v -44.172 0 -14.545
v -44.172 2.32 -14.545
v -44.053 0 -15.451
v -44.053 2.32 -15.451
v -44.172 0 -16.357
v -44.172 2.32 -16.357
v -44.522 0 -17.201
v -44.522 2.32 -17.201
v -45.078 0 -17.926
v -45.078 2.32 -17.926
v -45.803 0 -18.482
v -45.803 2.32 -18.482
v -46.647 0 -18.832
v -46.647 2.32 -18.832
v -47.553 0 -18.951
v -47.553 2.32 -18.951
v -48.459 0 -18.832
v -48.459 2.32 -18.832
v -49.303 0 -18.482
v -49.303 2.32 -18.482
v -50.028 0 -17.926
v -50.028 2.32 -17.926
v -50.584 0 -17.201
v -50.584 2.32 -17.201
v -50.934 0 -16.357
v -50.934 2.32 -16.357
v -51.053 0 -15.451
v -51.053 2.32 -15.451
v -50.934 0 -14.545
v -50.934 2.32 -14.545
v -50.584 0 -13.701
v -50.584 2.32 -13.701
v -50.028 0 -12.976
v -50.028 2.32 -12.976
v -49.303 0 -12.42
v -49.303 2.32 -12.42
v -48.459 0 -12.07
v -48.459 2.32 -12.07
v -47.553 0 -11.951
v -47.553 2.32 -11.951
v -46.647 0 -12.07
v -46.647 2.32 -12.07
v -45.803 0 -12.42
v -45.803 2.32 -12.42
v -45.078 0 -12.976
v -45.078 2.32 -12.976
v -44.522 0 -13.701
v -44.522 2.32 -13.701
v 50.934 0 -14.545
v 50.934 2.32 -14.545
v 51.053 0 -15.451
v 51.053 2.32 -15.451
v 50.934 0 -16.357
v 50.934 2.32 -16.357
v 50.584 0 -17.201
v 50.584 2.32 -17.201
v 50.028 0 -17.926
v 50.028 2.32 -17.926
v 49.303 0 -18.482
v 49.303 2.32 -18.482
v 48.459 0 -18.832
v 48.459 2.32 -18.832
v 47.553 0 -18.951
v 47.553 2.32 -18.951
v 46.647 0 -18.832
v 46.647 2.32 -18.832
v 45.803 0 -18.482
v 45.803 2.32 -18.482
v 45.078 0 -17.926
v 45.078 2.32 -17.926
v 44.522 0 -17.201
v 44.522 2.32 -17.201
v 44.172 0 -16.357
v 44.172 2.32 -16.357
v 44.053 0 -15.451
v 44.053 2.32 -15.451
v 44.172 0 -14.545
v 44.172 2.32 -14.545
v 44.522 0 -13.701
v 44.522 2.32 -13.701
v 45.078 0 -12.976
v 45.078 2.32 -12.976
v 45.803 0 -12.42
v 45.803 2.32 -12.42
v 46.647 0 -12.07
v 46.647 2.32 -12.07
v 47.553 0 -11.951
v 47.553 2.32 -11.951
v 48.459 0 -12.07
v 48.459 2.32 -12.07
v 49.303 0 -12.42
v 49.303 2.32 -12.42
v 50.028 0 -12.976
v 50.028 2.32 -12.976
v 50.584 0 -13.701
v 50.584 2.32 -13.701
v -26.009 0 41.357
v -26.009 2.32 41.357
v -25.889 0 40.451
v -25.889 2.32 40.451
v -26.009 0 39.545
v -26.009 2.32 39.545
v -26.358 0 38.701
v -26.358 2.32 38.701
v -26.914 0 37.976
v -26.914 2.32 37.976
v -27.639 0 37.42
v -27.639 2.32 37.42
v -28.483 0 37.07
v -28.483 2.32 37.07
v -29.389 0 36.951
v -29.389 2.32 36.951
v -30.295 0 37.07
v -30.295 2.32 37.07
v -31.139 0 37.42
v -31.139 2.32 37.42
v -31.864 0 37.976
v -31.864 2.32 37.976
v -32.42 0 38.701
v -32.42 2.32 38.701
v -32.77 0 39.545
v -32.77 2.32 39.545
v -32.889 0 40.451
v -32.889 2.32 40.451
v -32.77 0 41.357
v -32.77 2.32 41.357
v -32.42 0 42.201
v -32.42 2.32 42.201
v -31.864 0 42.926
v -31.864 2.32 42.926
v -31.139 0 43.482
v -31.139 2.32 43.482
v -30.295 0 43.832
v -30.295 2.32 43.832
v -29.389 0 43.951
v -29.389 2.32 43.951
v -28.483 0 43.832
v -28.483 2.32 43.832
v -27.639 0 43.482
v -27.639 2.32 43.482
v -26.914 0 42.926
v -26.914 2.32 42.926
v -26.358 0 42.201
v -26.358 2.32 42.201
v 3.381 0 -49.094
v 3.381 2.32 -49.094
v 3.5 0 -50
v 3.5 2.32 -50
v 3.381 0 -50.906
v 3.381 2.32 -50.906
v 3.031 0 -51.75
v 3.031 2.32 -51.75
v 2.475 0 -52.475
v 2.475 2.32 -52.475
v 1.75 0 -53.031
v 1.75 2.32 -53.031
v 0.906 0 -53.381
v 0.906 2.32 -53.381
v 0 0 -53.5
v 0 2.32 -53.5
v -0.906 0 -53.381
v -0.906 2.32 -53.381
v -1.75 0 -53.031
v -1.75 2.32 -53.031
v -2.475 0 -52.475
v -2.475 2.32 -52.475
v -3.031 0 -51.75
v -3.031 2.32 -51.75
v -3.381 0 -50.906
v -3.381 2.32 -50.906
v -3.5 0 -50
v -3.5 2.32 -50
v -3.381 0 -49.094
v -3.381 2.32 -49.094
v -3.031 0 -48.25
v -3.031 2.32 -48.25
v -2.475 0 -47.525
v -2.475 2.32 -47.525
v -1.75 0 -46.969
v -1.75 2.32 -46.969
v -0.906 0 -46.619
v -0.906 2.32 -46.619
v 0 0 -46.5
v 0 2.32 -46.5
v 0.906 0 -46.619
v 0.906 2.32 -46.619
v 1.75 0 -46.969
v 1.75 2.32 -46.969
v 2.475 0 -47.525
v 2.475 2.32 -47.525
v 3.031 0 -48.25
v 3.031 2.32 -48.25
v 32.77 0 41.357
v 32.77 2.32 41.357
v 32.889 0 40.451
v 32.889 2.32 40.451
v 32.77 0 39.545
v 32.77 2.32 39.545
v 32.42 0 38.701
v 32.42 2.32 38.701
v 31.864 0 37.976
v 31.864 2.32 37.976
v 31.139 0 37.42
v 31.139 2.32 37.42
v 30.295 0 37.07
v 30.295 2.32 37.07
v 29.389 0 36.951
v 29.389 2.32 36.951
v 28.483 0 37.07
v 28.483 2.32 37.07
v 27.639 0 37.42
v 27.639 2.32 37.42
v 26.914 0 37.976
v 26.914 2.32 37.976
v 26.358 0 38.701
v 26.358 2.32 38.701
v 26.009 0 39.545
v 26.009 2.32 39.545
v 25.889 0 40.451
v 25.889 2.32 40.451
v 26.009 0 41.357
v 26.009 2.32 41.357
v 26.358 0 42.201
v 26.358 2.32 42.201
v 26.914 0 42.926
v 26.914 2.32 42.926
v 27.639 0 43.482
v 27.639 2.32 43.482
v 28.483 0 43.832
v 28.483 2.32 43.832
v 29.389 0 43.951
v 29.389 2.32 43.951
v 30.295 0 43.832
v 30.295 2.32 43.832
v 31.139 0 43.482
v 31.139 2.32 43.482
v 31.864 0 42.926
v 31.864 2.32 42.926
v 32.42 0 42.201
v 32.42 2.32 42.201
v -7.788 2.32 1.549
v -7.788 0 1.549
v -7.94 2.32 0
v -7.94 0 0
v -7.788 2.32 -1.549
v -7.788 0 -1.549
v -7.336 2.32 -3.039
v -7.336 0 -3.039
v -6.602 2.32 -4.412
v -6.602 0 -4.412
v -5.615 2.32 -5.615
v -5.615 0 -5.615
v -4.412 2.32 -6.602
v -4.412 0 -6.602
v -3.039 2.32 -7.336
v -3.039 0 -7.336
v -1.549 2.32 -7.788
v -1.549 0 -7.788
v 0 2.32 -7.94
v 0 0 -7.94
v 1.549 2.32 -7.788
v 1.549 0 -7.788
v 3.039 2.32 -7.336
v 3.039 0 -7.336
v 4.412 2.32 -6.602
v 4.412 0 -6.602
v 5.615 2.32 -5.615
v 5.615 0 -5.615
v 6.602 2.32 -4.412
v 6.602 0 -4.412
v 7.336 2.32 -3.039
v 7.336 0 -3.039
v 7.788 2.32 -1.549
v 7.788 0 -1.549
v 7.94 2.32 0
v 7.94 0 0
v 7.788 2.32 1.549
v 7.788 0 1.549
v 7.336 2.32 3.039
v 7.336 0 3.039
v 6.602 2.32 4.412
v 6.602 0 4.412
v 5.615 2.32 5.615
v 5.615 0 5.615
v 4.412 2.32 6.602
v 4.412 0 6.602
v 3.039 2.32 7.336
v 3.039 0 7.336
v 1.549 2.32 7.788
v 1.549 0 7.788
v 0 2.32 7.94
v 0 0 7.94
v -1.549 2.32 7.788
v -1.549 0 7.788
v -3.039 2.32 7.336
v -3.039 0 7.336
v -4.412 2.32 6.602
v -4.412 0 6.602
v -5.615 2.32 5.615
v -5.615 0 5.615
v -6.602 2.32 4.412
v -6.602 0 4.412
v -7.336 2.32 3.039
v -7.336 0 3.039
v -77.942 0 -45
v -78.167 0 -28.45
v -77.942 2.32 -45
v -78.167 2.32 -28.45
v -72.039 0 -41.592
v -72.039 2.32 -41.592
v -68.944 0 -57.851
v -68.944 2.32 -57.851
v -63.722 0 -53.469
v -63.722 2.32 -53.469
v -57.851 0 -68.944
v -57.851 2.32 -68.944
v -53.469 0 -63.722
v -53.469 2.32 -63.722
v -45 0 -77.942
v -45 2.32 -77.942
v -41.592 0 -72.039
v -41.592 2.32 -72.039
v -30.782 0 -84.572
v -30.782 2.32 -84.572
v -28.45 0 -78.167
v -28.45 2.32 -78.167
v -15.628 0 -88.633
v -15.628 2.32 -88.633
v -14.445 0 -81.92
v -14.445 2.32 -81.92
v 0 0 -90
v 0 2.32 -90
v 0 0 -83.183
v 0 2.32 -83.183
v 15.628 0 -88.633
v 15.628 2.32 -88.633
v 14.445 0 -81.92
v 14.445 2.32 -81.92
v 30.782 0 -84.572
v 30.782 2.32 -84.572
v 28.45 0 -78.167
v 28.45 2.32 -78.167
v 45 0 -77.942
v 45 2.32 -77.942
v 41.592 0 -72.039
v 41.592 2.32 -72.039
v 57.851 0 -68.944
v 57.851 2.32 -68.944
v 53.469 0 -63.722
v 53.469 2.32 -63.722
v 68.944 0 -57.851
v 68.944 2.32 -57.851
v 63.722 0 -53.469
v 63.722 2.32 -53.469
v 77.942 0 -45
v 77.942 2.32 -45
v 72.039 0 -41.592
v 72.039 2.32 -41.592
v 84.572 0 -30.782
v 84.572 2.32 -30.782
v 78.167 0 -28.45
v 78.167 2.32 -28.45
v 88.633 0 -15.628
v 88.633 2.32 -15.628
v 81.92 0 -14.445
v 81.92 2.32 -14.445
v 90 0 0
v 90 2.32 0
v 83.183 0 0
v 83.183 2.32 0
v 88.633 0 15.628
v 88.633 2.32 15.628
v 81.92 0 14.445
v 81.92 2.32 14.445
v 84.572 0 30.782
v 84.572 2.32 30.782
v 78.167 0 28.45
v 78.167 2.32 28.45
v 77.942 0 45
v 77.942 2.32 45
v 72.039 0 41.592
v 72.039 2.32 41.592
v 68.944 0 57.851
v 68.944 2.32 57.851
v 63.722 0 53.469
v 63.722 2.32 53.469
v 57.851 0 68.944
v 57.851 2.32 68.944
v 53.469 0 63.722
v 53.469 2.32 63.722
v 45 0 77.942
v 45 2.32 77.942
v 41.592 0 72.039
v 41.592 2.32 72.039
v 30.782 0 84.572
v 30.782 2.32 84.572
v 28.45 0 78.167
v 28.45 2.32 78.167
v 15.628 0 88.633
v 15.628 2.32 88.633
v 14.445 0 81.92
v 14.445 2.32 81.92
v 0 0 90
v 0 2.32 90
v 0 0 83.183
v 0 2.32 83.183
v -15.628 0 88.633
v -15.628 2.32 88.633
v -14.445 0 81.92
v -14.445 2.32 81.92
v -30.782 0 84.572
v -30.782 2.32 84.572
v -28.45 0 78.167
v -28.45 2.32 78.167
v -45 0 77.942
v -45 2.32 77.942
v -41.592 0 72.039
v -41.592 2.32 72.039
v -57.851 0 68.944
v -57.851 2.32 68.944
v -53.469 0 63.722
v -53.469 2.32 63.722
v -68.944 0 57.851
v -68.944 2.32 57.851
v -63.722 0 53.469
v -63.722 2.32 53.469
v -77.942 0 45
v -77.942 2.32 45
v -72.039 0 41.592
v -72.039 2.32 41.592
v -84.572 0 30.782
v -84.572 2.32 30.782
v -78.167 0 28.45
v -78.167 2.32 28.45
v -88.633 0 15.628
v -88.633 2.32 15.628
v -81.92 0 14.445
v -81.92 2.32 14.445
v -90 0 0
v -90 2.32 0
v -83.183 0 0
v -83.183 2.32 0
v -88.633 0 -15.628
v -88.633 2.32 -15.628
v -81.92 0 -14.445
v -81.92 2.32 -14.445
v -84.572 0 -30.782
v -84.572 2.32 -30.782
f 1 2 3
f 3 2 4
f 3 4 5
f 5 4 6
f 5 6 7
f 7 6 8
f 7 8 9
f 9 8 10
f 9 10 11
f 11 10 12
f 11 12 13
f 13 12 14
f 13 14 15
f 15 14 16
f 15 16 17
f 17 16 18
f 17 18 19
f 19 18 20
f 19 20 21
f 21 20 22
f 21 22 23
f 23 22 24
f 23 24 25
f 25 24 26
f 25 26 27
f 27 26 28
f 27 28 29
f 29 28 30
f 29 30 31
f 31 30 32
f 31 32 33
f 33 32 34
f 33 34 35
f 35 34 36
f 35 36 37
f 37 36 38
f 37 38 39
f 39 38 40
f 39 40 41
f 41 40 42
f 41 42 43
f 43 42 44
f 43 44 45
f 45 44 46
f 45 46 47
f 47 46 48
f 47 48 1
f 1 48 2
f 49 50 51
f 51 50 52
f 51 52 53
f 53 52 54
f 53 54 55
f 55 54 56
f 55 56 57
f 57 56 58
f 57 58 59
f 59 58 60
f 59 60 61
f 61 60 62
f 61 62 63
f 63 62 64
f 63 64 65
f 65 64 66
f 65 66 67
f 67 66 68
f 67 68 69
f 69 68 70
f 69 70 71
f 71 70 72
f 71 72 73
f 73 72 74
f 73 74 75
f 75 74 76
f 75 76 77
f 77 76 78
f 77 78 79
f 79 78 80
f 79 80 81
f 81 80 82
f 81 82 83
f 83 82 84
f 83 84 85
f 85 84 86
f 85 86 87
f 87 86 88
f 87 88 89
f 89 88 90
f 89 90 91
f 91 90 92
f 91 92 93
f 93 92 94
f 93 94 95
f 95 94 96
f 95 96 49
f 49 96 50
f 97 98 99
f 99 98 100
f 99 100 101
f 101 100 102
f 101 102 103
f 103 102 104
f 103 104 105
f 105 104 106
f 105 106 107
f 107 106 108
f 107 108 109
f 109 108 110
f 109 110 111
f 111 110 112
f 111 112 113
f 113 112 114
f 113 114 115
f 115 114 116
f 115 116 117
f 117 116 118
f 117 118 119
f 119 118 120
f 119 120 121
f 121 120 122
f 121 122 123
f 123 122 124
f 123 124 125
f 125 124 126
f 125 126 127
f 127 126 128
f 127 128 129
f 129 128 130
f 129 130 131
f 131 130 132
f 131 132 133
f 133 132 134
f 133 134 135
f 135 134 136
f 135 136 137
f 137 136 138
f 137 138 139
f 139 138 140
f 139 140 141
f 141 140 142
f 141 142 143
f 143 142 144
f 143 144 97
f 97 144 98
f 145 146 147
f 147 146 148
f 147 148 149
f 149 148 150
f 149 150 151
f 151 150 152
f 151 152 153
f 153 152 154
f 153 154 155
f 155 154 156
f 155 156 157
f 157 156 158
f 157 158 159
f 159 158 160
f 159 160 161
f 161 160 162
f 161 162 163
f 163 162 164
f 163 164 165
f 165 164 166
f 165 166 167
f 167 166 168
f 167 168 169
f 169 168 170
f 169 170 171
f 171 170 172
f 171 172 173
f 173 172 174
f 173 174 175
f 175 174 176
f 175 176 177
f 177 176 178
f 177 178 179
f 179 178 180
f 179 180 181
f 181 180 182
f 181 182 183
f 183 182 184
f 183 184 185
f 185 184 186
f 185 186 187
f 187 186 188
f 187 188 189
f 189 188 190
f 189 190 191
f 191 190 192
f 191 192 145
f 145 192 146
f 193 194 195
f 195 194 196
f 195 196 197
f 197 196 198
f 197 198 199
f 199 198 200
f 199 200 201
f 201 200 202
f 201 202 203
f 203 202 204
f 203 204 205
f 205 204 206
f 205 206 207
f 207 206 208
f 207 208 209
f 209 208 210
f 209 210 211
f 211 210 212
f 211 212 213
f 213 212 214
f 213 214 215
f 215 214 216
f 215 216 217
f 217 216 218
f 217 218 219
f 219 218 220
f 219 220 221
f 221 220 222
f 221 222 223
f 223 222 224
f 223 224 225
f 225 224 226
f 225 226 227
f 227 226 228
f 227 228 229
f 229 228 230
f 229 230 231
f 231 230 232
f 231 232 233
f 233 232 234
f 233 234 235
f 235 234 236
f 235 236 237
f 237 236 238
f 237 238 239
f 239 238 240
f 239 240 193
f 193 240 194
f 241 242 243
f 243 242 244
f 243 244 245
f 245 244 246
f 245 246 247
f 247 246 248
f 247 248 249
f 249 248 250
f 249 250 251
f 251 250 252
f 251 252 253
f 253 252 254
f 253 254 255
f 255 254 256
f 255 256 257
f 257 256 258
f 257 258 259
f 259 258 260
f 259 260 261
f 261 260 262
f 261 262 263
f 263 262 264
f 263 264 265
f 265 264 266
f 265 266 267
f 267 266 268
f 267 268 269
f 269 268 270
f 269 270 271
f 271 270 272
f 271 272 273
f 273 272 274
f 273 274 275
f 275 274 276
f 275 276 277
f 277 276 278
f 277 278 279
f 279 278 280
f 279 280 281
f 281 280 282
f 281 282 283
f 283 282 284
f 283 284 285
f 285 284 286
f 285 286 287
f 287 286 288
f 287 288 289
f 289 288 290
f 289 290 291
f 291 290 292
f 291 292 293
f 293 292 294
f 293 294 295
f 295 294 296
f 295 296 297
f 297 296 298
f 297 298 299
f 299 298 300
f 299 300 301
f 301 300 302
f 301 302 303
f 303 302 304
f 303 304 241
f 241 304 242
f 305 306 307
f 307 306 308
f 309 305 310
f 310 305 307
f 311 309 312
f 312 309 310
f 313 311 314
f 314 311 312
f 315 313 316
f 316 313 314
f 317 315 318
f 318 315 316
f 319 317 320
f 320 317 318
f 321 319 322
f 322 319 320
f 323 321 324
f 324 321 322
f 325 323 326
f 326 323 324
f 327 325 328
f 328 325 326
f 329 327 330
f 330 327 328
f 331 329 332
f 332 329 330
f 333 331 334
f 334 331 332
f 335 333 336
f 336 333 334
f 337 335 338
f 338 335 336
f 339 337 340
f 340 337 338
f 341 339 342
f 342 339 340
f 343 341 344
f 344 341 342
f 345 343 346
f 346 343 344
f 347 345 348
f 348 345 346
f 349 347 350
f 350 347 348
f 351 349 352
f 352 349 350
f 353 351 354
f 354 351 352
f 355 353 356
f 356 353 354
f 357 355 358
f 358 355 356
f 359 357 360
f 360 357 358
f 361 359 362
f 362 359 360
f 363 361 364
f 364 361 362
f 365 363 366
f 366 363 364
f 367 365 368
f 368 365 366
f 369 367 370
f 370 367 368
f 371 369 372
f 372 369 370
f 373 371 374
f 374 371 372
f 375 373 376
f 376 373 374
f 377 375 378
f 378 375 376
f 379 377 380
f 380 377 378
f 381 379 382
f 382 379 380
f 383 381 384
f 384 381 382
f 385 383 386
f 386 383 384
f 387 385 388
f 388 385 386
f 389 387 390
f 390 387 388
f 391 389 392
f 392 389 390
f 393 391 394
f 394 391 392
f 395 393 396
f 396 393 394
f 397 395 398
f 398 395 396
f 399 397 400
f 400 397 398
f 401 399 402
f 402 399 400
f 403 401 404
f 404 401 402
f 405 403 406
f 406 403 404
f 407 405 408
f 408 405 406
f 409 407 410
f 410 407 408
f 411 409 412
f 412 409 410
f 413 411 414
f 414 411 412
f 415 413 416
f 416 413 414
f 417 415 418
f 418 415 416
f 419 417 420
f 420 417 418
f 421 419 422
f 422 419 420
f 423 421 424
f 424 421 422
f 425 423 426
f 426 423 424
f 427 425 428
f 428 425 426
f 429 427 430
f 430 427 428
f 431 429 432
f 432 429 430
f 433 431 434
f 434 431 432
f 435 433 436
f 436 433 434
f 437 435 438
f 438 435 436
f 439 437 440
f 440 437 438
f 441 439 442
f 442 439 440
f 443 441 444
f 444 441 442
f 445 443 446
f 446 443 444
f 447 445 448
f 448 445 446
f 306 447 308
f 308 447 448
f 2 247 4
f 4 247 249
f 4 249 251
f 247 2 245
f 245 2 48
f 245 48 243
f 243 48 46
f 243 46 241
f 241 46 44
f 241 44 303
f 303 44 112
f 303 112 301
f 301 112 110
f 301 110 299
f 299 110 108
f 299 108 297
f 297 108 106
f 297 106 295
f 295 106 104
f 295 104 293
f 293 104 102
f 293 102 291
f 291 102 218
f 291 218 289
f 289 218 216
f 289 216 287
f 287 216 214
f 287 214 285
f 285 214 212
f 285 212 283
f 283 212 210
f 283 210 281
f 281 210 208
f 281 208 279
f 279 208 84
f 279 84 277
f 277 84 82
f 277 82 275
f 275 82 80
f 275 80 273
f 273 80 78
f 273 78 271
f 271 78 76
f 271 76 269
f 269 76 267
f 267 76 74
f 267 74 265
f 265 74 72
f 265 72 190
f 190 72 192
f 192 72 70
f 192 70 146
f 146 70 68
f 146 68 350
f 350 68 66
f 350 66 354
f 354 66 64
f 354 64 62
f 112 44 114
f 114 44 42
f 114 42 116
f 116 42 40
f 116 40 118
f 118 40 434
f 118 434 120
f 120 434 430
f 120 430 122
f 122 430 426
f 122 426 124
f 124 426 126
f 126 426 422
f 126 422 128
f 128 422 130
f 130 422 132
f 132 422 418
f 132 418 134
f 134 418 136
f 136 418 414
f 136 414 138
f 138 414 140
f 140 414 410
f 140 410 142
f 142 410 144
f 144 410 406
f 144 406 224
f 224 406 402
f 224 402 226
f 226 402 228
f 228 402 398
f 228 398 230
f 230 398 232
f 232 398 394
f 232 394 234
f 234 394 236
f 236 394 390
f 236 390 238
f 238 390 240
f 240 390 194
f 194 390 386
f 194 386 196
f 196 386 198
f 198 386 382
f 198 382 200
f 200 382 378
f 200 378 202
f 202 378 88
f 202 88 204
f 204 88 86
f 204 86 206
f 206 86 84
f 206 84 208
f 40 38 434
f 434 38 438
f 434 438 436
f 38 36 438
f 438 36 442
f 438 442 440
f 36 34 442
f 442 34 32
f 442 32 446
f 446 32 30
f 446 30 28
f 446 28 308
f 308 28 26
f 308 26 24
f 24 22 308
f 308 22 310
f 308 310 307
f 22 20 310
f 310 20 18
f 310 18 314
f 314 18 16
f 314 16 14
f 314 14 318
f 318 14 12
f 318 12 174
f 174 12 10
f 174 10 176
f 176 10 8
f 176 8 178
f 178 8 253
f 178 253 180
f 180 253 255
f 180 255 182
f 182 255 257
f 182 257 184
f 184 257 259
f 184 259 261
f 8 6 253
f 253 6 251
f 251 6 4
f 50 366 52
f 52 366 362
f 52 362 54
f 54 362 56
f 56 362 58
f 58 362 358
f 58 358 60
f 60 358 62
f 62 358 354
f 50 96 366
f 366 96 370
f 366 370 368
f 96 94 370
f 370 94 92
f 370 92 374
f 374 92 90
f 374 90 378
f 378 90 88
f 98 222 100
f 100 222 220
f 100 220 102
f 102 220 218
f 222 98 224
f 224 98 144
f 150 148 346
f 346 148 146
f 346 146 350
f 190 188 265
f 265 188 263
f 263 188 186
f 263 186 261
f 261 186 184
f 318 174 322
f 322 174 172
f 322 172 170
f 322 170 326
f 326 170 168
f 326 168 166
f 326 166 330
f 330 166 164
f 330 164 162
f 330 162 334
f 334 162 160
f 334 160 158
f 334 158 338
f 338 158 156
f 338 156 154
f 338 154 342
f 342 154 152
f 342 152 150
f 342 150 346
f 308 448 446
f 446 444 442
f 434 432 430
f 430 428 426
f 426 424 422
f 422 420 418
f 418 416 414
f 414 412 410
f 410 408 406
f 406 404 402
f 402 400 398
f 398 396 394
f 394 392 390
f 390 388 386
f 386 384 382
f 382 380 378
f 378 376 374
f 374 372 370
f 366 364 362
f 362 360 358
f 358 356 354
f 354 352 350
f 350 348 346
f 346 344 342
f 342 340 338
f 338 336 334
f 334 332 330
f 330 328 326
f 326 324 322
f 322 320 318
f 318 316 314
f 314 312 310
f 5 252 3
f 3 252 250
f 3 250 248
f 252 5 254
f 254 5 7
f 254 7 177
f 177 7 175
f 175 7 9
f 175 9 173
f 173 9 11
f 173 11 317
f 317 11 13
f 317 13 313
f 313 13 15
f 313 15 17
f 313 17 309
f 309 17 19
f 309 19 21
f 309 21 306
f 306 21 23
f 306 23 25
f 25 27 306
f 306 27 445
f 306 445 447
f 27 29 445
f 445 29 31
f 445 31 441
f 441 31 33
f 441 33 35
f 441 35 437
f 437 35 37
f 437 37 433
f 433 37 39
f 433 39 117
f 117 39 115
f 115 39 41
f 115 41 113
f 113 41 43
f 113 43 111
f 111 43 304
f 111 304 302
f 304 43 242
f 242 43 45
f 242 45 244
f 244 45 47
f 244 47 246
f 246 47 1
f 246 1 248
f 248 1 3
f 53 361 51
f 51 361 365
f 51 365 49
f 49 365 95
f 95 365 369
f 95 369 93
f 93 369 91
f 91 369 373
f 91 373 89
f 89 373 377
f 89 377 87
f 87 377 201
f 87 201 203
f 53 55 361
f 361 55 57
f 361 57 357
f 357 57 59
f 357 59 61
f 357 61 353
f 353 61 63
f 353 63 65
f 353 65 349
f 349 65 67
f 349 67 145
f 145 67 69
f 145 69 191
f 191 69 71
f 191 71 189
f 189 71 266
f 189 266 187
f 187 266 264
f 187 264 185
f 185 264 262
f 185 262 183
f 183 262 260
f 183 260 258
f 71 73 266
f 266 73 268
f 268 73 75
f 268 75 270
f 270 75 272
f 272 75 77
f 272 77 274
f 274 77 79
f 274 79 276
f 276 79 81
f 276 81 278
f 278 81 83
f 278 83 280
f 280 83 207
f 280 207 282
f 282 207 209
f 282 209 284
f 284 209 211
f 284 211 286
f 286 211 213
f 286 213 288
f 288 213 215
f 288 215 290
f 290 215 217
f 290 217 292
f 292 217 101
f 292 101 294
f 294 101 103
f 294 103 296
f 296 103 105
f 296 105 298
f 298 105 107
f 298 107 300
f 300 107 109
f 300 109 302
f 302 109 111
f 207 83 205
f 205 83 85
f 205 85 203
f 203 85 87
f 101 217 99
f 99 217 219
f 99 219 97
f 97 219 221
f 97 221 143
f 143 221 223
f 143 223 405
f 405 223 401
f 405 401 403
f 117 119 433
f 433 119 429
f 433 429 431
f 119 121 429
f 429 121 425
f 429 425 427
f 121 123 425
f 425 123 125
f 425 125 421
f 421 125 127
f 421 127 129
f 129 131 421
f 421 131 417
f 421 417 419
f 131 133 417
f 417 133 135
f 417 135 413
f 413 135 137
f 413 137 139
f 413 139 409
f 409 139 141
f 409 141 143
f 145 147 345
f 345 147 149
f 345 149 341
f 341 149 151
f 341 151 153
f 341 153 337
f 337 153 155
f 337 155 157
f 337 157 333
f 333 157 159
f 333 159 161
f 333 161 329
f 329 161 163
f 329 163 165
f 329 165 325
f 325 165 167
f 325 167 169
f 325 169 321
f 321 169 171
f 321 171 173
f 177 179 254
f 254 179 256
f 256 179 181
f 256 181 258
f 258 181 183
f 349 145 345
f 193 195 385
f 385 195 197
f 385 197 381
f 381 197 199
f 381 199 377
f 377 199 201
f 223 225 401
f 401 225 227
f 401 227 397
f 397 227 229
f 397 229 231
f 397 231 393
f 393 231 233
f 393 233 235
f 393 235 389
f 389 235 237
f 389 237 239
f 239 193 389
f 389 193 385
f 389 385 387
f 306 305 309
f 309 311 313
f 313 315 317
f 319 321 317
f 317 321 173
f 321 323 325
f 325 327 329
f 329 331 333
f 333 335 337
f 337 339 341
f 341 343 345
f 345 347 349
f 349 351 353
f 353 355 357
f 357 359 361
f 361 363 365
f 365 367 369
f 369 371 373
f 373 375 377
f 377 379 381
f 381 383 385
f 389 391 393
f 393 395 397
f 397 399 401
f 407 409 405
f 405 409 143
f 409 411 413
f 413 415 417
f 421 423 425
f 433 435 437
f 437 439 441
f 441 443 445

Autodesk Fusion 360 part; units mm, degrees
sketch "Sketch1" plane through (0, 0, 0) normal (0, 1, 0) x (1, 0, 0)
  circle A0 centre (0, 0) radius 90 construction
  line L0 (-81.9196, 14.4446) -> (-88.6327, 15.6283)
  line L1 (-88.6327, 15.6283) -> (-83.1834, 0)
  line L2 (-90, 0) -> (-81.9196, -14.4446)
  line L3 (-83.1834, 0) -> (-90, 0)
  line L4 (-88.6327, -15.6283) -> (-78.1668, -28.4504)
  line L5 (-81.9196, -14.4446) -> (-88.6327, -15.6283)
  line L6 (-84.5723, -30.7818) -> (-72.0389, -41.5917)
  line L7 (-78.1668, -28.4504) -> (-84.5723, -30.7818)
  line L8 (-77.9423, -45) -> (-63.7222, -53.4693)
  line L9 (-72.0389, -41.5917) -> (-77.9423, -45)
  line L10 (-68.944, -57.8509) -> (-53.4693, -63.7222)
  line L11 (-63.7222, -53.4693) -> (-68.944, -57.8509)
  line L12 (-57.8509, -68.944) -> (-41.5917, -72.0389)
  line L13 (-53.4693, -63.7222) -> (-57.8509, -68.944)
  line L14 (-45, -77.9423) -> (-28.4504, -78.1668)
  line L15 (-41.5917, -72.0389) -> (-45, -77.9423)
  line L16 (-30.7818, -84.5723) -> (-14.4446, -81.9196)
  line L17 (-28.4504, -78.1668) -> (-30.7818, -84.5723)
  line L18 (-15.6283, -88.6327) -> (0, -83.1834)
  line L19 (-14.4446, -81.9196) -> (-15.6283, -88.6327)
  line L20 (0, -90) -> (14.4446, -81.9196)
  line L21 (0, -83.1834) -> (0, -90)
  line L22 (15.6283, -88.6327) -> (28.4504, -78.1668)
  line L23 (14.4446, -81.9196) -> (15.6283, -88.6327)
  line L24 (30.7818, -84.5723) -> (41.5917, -72.0389)
  line L25 (28.4504, -78.1668) -> (30.7818, -84.5723)
  line L26 (45, -77.9423) -> (53.4693, -63.7222)
  line L27 (41.5917, -72.0389) -> (45, -77.9423)
  line L28 (57.8509, -68.944) -> (63.7222, -53.4693)
  line L29 (53.4693, -63.7222) -> (57.8509, -68.944)
  line L30 (68.944, -57.8509) -> (72.0389, -41.5917)
  line L31 (63.7222, -53.4693) -> (68.944, -57.8509)
  line L32 (77.9423, -45) -> (78.1668, -28.4504)
  line L33 (72.0389, -41.5917) -> (77.9423, -45)
  line L34 (84.5723, -30.7818) -> (81.9196, -14.4446)
  line L35 (78.1668, -28.4504) -> (84.5723, -30.7818)
  line L36 (88.6327, -15.6283) -> (83.1834, 0)
  line L37 (81.9196, -14.4446) -> (88.6327, -15.6283)
  line L38 (90, 0) -> (81.9196, 14.4446)
  line L39 (83.1834, 0) -> (90, 0)
  line L40 (88.6327, 15.6283) -> (78.1668, 28.4504)
  line L41 (81.9196, 14.4446) -> (88.6327, 15.6283)
  line L42 (84.5723, 30.7818) -> (72.0389, 41.5917)
  line L43 (78.1668, 28.4504) -> (84.5723, 30.7818)
  line L44 (77.9423, 45) -> (63.7222, 53.4693)
  line L45 (72.0389, 41.5917) -> (77.9423, 45)
  line L46 (68.944, 57.8509) -> (53.4693, 63.7222)
  line L47 (63.7222, 53.4693) -> (68.944, 57.8509)
  line L48 (57.8509, 68.944) -> (41.5917, 72.0389)
  line L49 (53.4693, 63.7222) -> (57.8509, 68.944)
  line L50 (45, 77.9423) -> (28.4504, 78.1668)
  line L51 (41.5917, 72.0389) -> (45, 77.9423)
  line L52 (30.7818, 84.5723) -> (14.4446, 81.9196)
  line L53 (28.4504, 78.1668) -> (30.7818, 84.5723)
  line L54 (15.6283, 88.6327) -> (0, 83.1834)
  line L55 (14.4446, 81.9196) -> (15.6283, 88.6327)
  line L56 (0, 90) -> (-14.4446, 81.9196)
  line L57 (0, 83.1834) -> (0, 90)
  line L58 (-15.6283, 88.6327) -> (-28.4504, 78.1668)
  line L59 (-14.4446, 81.9196) -> (-15.6283, 88.6327)
  line L60 (-30.7818, 84.5723) -> (-41.5917, 72.0389)
  line L61 (-28.4504, 78.1668) -> (-30.7818, 84.5723)
  line L62 (-45, 77.9423) -> (-53.4693, 63.7222)
  line L63 (-41.5917, 72.0389) -> (-45, 77.9423)
  line L64 (-57.8509, 68.944) -> (-63.7222, 53.4693)
  line L65 (-53.4693, 63.7222) -> (-57.8509, 68.944)
  line L66 (-68.944, 57.8509) -> (-72.0389, 41.5917)
  line L67 (-63.7222, 53.4693) -> (-68.944, 57.8509)
  line L68 (-77.9423, 45) -> (-78.1668, 28.4504)
  line L69 (-72.0389, 41.5917) -> (-77.9423, 45)
  line L70 (-84.5723, 30.7818) -> (-81.9196, 14.4446)
  line L71 (-78.1668, 28.4504) -> (-84.5723, 30.7818)
  circle A1 centre (0, 0) radius 7.9405
  dimension "d1" = 180
  dimension "d5" = 15.881
extrude "Extrude1" add sketch "Sketch1" along normal blind 2.32
sketch "Sketch2" plane through (0, 2.32, 0) normal (0, 1, 0) x (-1, 0, 0)
  circle A0 centre (0, 0) radius 7.9405
  line L0 (78.1668, -28.4504) -> (84.5723, -30.7818)
  line L1 (84.5723, -30.7818) -> (81.9196, -14.4446)
  line L2 (81.9196, -14.4446) -> (88.6327, -15.6283)
  line L3 (88.6327, -15.6283) -> (83.1834, 0)
  line L4 (83.1834, 0) -> (90, 0)
  line L5 (90, 0) -> (81.9196, 14.4446)
  line L6 (81.9196, 14.4446) -> (88.6327, 15.6283)
  line L7 (88.6327, 15.6283) -> (78.1668, 28.4504)
  line L8 (78.1668, 28.4504) -> (84.5723, 30.7818)
  line L9 (84.5723, 30.7818) -> (72.0389, 41.5917)
  line L10 (72.0389, 41.5917) -> (77.9423, 45)
  line L11 (77.9423, 45) -> (63.7222, 53.4693)
  line L12 (63.7222, 53.4693) -> (68.944, 57.8509)
  line L13 (68.944, 57.8509) -> (53.4693, 63.7222)
  line L14 (53.4693, 63.7222) -> (57.8509, 68.944)
  line L15 (57.8509, 68.944) -> (41.5917, 72.0389)
  line L16 (41.5917, 72.0389) -> (45, 77.9423)
  line L17 (45, 77.9423) -> (28.4504, 78.1668)
  line L18 (28.4504, 78.1668) -> (30.7818, 84.5723)
  line L19 (30.7818, 84.5723) -> (14.4446, 81.9196)
  line L20 (14.4446, 81.9196) -> (15.6283, 88.6327)
  line L21 (15.6283, 88.6327) -> (0, 83.1834)
  line L22 (0, 83.1834) -> (0, 90)
  line L23 (0, 90) -> (-14.4446, 81.9196)
  line L24 (-14.4446, 81.9196) -> (-15.6283, 88.6327)
  line L25 (-15.6283, 88.6327) -> (-28.4504, 78.1668)
  line L26 (-28.4504, 78.1668) -> (-30.7818, 84.5723)
  line L27 (-30.7818, 84.5723) -> (-41.5917, 72.0389)
  line L28 (-41.5917, 72.0389) -> (-45, 77.9423)
  line L29 (-45, 77.9423) -> (-53.4693, 63.7222)
  line L30 (-53.4693, 63.7222) -> (-57.8509, 68.944)
  line L31 (-57.8509, 68.944) -> (-63.7222, 53.4693)
  line L32 (-63.7222, 53.4693) -> (-68.944, 57.8509)
  line L33 (-68.944, 57.8509) -> (-72.0389, 41.5917)
  line L34 (-72.0389, 41.5917) -> (-77.9423, 45)
  line L35 (-77.9423, 45) -> (-78.1668, 28.4504)
  line L36 (-78.1668, 28.4504) -> (-84.5723, 30.7818)
  line L37 (-84.5723, 30.7818) -> (-81.9196, 14.4446)
  line L38 (-81.9196, 14.4446) -> (-88.6327, 15.6283)
  line L39 (-88.6327, 15.6283) -> (-83.1834, 0)
  line L40 (-83.1834, 0) -> (-90, 0)
  line L41 (-90, 0) -> (-81.9196, -14.4446)
  line L42 (-81.9196, -14.4446) -> (-88.6327, -15.6283)
  line L43 (-88.6327, -15.6283) -> (-78.1668, -28.4504)
  line L44 (-78.1668, -28.4504) -> (-84.5723, -30.7818)
  line L45 (-84.5723, -30.7818) -> (-72.0389, -41.5917)
  line L46 (-72.0389, -41.5917) -> (-77.9423, -45)
  line L47 (-77.9423, -45) -> (-63.7222, -53.4693)
  line L48 (-63.7222, -53.4693) -> (-68.944, -57.8509)
  line L49 (-68.944, -57.8509) -> (-53.4693, -63.7222)
  line L50 (-53.4693, -63.7222) -> (-57.8509, -68.944)
  line L51 (-57.8509, -68.944) -> (-41.5917, -72.0389)
  line L52 (-41.5917, -72.0389) -> (-45, -77.9423)
  line L53 (-45, -77.9423) -> (-28.4504, -78.1668)
  line L54 (-28.4504, -78.1668) -> (-30.7818, -84.5723)
  line L55 (-30.7818, -84.5723) -> (-14.4446, -81.9196)
  line L56 (-14.4446, -81.9196) -> (-15.6283, -88.6327)
  line L57 (-15.6283, -88.6327) -> (0, -83.1834)
  line L58 (0, -83.1834) -> (0, -90)
  line L59 (0, -90) -> (14.4446, -81.9196)
  line L60 (14.4446, -81.9196) -> (15.6283, -88.6327)
  line L61 (15.6283, -88.6327) -> (28.4504, -78.1668)
  line L62 (28.4504, -78.1668) -> (30.7818, -84.5723)
  line L63 (30.7818, -84.5723) -> (41.5917, -72.0389)
  line L64 (41.5917, -72.0389) -> (45, -77.9423)
  line L65 (45, -77.9423) -> (53.4693, -63.7222)
  line L66 (53.4693, -63.7222) -> (57.8509, -68.944)
  line L67 (57.8509, -68.944) -> (63.7222, -53.4693)
  line L68 (63.7222, -53.4693) -> (68.944, -57.8509)
  line L69 (68.944, -57.8509) -> (72.0389, -41.5917)
  line L70 (72.0389, -41.5917) -> (77.9423, -45)
  line L71 (77.9423, -45) -> (78.1668, -28.4504)
  circle A1 centre (0, -50) radius 3.5
  circle A2 centre (47.5528, -15.4508) radius 3.5
  circle A3 centre (29.3893, 40.4508) radius 3.5
  circle A4 centre (-29.3893, 40.4508) radius 3.5
  circle A5 centre (-47.5528, -15.4508) radius 3.5
  dimension "d8" = 7
  dimension "d10" = 360
extrude "Extrude2" cut sketch "Sketch2" against normal blind 30 contours A1 | A2 | A3 | A4 | A5
